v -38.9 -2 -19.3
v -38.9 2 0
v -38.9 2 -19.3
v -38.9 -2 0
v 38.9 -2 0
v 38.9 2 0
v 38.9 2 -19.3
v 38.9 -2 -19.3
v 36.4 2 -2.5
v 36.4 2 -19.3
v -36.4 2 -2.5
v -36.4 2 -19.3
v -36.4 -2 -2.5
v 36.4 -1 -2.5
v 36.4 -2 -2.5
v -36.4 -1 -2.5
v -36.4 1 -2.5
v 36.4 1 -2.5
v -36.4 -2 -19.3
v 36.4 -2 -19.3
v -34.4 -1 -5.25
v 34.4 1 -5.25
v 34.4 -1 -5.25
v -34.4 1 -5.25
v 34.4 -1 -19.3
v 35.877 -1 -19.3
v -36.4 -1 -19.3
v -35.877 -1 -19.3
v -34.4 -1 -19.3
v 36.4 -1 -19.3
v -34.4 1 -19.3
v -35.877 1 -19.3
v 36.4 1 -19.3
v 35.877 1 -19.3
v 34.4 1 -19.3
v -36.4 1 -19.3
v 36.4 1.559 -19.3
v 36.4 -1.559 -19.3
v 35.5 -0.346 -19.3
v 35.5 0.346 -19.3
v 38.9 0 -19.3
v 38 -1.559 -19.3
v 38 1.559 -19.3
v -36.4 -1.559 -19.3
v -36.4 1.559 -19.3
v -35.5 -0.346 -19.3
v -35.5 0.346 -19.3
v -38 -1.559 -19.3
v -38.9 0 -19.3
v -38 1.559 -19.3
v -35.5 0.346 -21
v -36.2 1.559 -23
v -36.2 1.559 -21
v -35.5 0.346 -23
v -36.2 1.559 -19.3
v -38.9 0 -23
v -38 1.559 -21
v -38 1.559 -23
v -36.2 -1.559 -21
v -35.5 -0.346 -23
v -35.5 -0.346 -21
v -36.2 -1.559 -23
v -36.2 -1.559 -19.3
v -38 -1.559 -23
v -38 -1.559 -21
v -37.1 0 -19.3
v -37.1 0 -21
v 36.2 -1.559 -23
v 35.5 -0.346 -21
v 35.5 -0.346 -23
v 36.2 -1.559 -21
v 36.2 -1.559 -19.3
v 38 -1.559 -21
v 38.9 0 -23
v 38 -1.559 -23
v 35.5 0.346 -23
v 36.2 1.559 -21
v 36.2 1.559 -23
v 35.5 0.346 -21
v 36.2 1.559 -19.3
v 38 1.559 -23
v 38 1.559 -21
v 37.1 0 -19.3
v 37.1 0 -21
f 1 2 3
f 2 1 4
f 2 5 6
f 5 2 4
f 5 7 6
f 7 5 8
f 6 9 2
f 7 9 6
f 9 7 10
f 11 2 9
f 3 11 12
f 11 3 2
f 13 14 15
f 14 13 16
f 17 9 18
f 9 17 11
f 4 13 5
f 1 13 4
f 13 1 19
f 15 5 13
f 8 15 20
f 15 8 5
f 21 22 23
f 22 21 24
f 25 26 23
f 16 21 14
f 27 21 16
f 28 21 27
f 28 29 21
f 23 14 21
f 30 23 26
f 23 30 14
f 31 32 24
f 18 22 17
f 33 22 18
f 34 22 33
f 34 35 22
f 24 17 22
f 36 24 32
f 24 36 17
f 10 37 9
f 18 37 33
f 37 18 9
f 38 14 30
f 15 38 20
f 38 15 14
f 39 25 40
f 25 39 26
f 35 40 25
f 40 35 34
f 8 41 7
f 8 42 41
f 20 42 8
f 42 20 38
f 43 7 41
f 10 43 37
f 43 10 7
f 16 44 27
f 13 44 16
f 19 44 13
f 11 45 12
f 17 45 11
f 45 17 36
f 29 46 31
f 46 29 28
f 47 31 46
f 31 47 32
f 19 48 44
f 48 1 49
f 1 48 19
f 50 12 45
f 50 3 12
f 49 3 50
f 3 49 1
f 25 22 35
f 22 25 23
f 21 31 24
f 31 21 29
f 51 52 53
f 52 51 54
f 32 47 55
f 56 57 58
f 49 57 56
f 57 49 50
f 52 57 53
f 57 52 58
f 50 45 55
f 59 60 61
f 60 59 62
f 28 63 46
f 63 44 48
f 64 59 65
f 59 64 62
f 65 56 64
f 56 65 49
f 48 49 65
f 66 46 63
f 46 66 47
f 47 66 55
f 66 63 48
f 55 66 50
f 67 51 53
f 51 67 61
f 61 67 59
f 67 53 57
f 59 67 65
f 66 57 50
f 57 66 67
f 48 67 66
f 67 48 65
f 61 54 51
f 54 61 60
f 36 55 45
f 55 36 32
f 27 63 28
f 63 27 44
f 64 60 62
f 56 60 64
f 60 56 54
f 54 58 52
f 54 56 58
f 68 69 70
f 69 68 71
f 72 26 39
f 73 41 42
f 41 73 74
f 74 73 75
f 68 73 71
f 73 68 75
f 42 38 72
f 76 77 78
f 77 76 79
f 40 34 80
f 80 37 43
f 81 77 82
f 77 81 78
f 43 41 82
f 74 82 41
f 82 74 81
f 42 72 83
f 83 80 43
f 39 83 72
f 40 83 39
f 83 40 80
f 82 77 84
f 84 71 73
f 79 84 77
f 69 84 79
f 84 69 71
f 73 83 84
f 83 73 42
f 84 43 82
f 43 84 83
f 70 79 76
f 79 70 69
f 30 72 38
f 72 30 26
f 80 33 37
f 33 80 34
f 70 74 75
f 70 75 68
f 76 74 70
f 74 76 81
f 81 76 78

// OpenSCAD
LENGTH = 77.8;
WIDTH = 4;
WIDTH2 = 2;
HEIGHT = 19.3;
THICKNESS = 2.5;
THICKNESS2V = 4;
THICKNESS2H = 2;
PINHEIGHT_HOLE = 1.7;
PINHEIGHT_THICK = 2;
PINHEIGHT = PINHEIGHT_HOLE + PINHEIGHT_THICK;
PIN_RADIUS = 3.6 / 2;
PIN_INT_WIDTH = 1.6;		// .2 short for flat surface
PINHOLE_OFFSET = 1.6;


module
body ()
{
  translate ([0, 0, -THICKNESS / 2]) cube ([LENGTH, WIDTH, THICKNESS],
					   center = true);
  translate ([0, 0, -THICKNESS / 2 - THICKNESS2V / 2]) cube ([LENGTH, WIDTH2,
							      THICKNESS2V],
							     center = true);
  color("pink") translate ([+LENGTH / 2 - THICKNESS/2, 0, -HEIGHT / 2]) cube ([THICKNESS, WIDTH, HEIGHT],
						  center = true);
  color("pink") translate ([-LENGTH / 2 + THICKNESS/2, 0, -HEIGHT / 2]) cube ([THICKNESS, WIDTH, HEIGHT],
						  center = true);
  color("blue") translate ([+LENGTH / 2-THICKNESS-THICKNESS2H/2, 0, -HEIGHT / 2]) cube ([THICKNESS2H,
							       WIDTH2,
							       HEIGHT],
							      center = true);
  color("blue") translate ([-LENGTH / 2+THICKNESS+THICKNESS2H/2, 0, -HEIGHT / 2]) cube ([THICKNESS2H,
							       WIDTH2,
							       HEIGHT],
							      center = true);
}

module
pin_negative_hole() {
    translate([0,0,PINHEIGHT/2-PINHEIGHT_HOLE/2])
    difference() {
    color ("purple") cylinder (r1 = 10, r2 = 10, h = PINHEIGHT_HOLE, center = true);
    color("black") translate([-1.8,0,0]) cylinder (r1 = PIN_RADIUS, r2 = PIN_RADIUS, h = 2*PINHEIGHT_HOLE, center = true);
    }
}

module
pin_negative ()
{
  union ()
  {
    difference ()
    {
      union ()
      {
	color ("purple") cylinder (r1 = 10, r2 = 10, h = 10, center = true);
      }
      union ()
      {
	cylinder (r1 = PIN_RADIUS, r2 = PIN_RADIUS, h = 30, center = true);
      }
    }

    color ("red") translate ([PIN_INT_WIDTH + 5, 0, 0]) cube ([10, 10, 10],
							      center = true);
    pin_negative_hole();
  }
}

module
pin ()
{
  translate([0,0,-PINHEIGHT/2])
    difference ()
  {
    union ()
    {
      translate([0,0,0.0001]) color ("green") cylinder (r1 = PIN_RADIUS, r2 = PIN_RADIUS, h =
				PINHEIGHT+0.0001, center = true);
    }
    pin_negative ();
  }
}

module retainer() {
    body();
    translate([-LENGTH/2+PIN_RADIUS,0,-HEIGHT]) pin();
    translate([+LENGTH/2-PIN_RADIUS,0,-HEIGHT]) rotate([0,0,180]) pin();
}

retainer();
